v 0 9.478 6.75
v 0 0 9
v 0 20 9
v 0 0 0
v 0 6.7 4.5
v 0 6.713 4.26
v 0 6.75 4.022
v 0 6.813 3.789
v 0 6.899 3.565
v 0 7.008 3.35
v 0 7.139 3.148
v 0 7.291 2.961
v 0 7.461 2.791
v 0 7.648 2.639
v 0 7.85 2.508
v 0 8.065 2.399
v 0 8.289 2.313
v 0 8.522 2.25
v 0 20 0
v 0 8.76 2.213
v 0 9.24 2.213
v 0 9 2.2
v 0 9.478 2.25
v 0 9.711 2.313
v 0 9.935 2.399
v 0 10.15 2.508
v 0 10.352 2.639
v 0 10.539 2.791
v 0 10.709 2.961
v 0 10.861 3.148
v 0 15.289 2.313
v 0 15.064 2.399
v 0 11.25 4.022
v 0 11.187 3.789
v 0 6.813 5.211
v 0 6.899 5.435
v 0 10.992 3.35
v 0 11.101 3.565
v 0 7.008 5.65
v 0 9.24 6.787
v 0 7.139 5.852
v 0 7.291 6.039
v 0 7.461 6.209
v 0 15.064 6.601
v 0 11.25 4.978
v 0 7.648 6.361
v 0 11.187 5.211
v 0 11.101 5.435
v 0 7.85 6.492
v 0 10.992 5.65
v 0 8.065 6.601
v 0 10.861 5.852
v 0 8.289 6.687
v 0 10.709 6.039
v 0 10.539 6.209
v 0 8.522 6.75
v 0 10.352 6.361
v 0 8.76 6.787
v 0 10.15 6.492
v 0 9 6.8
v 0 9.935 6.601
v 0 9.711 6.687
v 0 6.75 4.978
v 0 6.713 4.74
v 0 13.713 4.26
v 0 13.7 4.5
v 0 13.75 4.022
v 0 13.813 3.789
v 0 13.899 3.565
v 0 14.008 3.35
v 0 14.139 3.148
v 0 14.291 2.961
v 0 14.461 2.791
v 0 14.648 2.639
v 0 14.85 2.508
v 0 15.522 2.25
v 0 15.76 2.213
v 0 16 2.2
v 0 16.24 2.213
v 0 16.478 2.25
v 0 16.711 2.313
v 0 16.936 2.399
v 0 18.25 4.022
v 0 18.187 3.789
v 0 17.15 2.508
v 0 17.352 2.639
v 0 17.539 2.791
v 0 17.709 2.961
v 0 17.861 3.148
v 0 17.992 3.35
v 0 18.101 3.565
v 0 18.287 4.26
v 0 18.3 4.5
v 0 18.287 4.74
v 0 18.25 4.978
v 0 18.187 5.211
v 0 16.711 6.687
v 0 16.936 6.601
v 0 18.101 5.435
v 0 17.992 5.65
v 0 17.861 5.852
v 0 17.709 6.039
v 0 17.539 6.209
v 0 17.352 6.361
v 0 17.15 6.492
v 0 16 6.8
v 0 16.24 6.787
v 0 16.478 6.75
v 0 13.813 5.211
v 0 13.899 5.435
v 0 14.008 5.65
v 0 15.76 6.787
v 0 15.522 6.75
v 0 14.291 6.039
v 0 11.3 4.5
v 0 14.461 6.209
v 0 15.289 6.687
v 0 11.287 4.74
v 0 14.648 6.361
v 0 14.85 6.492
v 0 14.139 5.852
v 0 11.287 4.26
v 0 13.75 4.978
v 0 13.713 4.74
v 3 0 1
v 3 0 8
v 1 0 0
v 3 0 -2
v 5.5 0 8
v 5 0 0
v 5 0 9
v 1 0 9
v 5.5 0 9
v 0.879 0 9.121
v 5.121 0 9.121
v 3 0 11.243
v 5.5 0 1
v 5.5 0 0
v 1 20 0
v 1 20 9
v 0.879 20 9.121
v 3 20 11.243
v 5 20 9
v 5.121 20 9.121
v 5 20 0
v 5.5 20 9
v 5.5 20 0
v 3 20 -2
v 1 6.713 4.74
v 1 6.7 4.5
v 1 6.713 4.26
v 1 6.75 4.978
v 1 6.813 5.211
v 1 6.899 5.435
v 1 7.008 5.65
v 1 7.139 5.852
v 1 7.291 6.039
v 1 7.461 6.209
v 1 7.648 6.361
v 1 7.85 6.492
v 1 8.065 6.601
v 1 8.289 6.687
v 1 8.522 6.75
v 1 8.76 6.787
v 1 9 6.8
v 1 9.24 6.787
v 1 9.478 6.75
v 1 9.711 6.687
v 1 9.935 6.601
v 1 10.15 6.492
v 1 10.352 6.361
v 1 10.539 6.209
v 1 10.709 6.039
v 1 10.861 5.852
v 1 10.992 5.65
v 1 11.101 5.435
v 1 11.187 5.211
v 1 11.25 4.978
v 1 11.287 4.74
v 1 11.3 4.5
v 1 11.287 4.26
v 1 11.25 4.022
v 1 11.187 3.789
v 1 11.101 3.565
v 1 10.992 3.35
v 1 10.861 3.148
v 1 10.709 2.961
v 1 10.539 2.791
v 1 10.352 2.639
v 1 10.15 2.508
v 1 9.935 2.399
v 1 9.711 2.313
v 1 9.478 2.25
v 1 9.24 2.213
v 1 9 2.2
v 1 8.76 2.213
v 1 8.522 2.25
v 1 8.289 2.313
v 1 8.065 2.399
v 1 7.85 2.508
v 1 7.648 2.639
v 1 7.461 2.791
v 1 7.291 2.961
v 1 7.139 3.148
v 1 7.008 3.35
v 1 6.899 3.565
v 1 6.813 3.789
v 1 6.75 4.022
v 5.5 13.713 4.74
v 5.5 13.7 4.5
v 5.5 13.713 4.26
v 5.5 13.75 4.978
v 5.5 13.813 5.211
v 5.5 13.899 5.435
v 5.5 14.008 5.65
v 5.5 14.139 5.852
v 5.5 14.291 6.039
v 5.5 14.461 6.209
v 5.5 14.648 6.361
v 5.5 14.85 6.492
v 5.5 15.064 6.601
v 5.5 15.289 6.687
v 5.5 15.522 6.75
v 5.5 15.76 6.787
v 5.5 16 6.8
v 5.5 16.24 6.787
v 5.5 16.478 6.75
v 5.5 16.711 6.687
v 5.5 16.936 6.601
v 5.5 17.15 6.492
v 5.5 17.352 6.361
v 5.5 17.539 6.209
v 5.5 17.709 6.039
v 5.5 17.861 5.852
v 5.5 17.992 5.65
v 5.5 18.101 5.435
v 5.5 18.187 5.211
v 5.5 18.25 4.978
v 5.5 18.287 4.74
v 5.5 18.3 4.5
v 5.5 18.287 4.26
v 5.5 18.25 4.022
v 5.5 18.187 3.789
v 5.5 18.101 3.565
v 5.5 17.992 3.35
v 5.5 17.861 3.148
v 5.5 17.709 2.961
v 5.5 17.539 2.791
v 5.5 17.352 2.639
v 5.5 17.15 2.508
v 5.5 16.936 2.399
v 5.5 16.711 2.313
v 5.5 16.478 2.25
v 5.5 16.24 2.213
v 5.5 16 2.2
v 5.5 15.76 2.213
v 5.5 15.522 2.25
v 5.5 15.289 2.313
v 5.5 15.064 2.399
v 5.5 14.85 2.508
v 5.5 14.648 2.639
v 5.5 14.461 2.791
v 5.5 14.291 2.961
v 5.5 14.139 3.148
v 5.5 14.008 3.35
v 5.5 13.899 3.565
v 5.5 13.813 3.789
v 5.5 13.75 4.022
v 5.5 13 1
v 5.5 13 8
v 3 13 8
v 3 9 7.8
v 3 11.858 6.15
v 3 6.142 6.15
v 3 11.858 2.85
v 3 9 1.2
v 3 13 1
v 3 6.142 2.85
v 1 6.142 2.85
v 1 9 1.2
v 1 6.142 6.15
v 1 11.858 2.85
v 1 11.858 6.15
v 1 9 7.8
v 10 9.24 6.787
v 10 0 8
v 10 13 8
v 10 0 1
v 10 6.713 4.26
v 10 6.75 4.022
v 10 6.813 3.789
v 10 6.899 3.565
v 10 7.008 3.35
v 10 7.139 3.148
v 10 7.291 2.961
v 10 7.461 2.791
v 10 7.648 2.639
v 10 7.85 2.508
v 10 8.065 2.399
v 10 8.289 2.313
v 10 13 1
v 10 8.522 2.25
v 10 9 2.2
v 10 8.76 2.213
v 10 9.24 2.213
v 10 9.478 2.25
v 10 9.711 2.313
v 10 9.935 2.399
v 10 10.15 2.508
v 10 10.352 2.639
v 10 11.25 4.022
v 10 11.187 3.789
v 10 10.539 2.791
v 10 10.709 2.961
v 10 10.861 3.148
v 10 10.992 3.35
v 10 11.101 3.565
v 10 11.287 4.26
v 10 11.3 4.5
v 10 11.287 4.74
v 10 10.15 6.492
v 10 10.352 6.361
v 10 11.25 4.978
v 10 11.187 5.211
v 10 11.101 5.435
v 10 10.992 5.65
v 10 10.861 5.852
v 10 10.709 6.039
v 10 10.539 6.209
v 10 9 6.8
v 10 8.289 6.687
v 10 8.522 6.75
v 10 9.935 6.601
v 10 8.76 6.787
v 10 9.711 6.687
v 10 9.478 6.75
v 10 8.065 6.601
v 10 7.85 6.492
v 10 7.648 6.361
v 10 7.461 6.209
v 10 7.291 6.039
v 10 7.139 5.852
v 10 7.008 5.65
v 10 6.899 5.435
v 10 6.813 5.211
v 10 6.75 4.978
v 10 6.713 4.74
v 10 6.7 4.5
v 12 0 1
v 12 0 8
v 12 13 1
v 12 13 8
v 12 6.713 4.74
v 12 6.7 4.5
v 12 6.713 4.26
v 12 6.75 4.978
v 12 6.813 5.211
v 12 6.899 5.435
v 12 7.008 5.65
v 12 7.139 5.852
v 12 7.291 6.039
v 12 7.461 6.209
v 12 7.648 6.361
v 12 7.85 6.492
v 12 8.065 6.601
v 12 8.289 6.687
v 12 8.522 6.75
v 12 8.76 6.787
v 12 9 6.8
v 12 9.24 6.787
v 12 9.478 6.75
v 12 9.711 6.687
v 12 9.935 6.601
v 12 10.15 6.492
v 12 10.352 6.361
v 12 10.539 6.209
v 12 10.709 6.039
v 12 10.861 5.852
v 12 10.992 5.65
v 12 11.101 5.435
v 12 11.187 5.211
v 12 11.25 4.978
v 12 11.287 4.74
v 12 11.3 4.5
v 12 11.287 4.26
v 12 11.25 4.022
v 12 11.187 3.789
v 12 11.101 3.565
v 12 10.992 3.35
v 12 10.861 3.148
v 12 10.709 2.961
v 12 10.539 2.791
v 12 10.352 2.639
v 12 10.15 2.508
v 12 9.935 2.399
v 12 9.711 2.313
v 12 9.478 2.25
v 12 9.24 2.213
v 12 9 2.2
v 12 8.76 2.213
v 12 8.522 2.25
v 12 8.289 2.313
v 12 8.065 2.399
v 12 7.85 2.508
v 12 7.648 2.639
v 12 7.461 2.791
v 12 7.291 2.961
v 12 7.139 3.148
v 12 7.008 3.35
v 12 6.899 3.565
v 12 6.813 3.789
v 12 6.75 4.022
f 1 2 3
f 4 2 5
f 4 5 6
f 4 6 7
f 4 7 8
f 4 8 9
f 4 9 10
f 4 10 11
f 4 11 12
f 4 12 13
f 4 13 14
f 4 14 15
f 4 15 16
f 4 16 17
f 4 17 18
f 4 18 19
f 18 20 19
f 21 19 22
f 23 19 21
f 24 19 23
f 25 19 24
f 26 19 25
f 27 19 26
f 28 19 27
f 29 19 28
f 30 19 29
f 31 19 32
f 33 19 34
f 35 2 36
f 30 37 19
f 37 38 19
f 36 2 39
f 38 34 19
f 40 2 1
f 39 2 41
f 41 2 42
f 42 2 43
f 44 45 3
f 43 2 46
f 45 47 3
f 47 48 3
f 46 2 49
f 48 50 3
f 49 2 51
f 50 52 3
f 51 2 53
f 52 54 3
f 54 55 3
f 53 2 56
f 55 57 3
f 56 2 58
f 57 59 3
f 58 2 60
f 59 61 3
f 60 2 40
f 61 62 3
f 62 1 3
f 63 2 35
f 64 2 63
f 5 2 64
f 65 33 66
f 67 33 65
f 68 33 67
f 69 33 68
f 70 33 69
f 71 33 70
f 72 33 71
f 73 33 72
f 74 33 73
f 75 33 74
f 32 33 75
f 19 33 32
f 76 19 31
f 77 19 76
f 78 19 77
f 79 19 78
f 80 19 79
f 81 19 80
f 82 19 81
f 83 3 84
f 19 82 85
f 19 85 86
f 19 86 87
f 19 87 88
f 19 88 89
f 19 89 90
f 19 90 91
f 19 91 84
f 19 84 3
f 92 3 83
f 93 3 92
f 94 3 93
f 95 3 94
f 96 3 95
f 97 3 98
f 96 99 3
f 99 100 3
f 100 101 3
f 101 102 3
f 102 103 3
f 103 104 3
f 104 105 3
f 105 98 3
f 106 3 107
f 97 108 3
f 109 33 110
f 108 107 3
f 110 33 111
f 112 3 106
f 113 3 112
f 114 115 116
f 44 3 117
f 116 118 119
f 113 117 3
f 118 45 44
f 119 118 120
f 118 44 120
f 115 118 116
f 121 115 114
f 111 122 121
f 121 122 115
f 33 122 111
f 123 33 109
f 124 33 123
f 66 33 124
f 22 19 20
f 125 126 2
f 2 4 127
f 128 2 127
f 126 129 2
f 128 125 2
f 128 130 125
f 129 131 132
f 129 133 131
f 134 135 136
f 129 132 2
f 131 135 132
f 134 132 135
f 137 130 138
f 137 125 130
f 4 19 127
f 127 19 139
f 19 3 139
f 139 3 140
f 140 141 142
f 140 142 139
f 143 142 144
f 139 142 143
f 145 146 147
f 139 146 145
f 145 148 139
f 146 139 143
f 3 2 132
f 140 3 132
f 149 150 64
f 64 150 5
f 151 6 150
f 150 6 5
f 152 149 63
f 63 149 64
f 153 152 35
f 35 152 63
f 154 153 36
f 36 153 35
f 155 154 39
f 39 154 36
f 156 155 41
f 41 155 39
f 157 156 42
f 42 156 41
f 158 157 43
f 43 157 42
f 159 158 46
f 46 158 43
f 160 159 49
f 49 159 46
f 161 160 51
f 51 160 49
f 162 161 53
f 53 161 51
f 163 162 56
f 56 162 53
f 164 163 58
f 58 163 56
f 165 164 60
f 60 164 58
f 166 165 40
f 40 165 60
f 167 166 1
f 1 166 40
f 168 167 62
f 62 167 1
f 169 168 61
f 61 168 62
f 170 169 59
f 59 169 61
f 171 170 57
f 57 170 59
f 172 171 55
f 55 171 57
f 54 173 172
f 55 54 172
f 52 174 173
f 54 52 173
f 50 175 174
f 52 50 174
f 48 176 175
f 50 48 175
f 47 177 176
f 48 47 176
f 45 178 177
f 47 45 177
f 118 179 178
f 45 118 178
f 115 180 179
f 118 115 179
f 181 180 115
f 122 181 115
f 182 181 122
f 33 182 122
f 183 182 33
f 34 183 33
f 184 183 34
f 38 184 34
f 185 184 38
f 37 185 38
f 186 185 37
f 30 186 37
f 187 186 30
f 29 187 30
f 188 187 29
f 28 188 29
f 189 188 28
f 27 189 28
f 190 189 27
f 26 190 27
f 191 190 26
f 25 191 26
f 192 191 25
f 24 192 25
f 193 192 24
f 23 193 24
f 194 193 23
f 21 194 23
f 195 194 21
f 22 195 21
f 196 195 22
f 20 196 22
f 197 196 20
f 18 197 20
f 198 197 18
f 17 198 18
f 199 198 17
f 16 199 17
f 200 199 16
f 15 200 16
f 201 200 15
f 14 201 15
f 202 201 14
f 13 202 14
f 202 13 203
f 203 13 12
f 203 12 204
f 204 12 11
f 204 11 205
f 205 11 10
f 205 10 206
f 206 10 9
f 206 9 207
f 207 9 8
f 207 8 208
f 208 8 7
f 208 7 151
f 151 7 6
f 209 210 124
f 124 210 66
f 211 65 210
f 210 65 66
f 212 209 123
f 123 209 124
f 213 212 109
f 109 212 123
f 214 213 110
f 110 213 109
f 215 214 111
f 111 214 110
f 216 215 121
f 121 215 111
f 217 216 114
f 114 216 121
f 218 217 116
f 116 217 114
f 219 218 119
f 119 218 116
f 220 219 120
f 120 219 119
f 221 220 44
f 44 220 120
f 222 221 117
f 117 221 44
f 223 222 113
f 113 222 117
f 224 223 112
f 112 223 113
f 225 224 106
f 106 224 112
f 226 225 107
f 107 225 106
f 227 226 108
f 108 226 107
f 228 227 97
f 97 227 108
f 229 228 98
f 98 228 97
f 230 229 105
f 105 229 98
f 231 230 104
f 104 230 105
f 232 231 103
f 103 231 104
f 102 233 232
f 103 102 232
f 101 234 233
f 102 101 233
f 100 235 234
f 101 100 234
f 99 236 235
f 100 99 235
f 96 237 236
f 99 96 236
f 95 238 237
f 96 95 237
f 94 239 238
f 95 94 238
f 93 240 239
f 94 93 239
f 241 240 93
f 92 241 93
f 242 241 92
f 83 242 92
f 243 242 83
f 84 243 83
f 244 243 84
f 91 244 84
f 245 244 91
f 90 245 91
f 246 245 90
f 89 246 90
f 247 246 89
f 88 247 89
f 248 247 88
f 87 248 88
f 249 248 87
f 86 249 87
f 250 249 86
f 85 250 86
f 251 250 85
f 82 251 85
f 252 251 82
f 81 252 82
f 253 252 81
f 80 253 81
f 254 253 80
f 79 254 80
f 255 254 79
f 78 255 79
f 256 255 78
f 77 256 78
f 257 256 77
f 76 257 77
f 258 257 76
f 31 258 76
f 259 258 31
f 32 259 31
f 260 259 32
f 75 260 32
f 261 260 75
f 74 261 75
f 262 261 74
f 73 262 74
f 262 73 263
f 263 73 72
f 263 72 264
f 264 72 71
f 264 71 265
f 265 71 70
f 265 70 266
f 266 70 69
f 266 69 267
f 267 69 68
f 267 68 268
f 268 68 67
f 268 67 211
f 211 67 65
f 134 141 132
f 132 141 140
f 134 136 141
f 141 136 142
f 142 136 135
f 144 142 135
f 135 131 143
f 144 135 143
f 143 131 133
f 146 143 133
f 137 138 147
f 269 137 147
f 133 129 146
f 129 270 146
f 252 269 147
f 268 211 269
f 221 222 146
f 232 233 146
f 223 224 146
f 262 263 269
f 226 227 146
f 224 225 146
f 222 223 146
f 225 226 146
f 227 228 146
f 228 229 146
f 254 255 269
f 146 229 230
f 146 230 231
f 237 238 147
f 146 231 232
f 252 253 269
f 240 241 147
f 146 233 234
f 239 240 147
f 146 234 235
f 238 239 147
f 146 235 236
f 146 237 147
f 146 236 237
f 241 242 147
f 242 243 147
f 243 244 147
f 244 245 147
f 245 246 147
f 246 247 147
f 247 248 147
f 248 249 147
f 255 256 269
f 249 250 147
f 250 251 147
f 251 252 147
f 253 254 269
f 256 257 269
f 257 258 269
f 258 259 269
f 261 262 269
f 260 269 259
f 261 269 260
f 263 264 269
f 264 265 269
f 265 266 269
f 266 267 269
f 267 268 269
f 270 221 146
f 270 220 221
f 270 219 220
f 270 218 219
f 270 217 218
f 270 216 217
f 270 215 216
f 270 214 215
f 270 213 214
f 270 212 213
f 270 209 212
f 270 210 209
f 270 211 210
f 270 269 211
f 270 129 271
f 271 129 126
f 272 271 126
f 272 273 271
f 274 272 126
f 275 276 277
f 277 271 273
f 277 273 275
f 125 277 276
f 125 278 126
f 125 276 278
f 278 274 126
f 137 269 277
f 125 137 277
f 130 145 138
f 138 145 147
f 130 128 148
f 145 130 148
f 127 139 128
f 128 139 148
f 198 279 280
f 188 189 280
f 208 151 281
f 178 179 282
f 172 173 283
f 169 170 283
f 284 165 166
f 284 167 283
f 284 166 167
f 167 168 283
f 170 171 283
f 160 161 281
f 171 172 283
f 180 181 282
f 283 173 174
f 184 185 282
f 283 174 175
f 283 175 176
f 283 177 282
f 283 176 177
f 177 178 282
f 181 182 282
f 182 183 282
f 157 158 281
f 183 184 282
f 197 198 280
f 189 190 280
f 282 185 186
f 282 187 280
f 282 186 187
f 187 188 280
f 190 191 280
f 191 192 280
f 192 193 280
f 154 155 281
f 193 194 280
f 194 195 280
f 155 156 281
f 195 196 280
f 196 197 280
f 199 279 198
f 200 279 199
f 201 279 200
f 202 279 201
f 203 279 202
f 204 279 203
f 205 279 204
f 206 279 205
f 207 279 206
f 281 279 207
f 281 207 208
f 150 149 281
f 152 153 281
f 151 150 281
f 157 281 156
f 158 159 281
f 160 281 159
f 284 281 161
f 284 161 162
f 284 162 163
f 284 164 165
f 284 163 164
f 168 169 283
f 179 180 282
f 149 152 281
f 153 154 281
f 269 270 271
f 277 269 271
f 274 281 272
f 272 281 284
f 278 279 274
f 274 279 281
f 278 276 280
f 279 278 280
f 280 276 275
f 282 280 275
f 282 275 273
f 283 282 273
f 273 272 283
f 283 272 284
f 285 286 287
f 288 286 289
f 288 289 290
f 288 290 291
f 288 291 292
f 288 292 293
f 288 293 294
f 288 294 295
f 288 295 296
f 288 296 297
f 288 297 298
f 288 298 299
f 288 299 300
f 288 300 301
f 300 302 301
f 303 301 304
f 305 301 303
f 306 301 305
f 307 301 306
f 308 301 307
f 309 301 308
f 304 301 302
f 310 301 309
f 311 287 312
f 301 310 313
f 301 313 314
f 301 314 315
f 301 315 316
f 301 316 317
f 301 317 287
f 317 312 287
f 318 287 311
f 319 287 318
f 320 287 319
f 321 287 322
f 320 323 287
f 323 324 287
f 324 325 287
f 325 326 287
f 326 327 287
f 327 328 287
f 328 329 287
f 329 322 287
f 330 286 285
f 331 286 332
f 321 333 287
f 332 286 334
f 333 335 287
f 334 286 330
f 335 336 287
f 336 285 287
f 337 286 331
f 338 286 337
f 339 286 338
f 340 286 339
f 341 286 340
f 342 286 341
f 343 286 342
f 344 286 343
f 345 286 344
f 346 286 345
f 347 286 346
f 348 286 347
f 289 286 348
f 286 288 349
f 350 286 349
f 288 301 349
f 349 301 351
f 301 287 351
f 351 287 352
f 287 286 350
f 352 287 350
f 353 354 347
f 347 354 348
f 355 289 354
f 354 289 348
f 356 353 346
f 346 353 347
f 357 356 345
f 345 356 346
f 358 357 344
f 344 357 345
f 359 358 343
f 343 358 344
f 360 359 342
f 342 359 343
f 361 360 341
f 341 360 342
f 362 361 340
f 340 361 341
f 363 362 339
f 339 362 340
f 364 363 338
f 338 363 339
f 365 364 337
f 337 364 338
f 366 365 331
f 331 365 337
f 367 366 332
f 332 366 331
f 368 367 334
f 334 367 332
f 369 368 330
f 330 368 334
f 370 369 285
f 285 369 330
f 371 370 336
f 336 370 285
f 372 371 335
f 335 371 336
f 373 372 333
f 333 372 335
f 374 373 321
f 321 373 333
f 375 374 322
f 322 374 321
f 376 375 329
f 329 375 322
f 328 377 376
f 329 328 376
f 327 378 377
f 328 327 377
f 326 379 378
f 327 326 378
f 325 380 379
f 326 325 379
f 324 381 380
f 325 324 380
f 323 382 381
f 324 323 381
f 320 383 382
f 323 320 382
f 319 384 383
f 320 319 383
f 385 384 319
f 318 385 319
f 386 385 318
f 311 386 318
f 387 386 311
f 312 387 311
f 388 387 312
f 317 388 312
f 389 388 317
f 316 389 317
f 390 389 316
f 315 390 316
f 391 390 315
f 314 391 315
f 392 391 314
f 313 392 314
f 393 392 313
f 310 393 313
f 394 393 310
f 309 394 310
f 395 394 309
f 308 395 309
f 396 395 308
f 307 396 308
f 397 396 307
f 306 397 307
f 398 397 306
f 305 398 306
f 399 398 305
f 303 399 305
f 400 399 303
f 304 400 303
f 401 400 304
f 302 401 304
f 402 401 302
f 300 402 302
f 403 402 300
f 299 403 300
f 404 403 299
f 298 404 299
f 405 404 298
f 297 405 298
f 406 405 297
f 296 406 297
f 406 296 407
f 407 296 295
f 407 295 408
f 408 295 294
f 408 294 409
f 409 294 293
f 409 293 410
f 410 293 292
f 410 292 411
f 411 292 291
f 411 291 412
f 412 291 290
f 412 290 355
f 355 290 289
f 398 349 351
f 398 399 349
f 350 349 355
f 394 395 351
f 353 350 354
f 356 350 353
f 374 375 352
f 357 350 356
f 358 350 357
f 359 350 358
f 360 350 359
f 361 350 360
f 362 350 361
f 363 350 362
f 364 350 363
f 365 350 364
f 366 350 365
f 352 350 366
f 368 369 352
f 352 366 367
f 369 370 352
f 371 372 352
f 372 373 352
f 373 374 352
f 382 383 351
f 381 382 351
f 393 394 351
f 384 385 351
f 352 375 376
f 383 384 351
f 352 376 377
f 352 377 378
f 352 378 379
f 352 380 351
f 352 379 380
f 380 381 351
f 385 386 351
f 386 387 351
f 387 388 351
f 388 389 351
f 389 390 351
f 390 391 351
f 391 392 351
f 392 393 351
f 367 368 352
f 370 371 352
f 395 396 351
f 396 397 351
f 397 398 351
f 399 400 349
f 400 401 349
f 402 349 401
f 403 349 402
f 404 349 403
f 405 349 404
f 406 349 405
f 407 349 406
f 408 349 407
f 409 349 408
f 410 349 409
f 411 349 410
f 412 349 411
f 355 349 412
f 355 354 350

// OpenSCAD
x = 24;		// Height body
y = 20;		// Height body
z = 48;		// Height body
s1x = 5;	// Height body
s1z = 9;	// Height body

r1 = 4.2;	// Radio varilla lisa
r2 = 2.3;	// Radio tornillo M3
r3 = 11.2;	// Radio centro motor
r4 = 3;		// Radio tornillo M5
r5 = 7.6;	// Radio rodamiento lineal
r6 = 4.62;	// Radio tuerca M5
h6 = 4;		// Altura tuerca M5
r7 = 2.3;	// Radio poleas
r8 = 3.7;	// Radio cabeza tornillo M3
r9 = 6.1;	// Radio casquillo bronze
rM4 = 2.7;	// Radio tornillo M4
rTM5 = 4.62;	// Radio tuerca M5
hTM5 = 4;		// Altura tuerca M5
rTM4 = 4;	// Radio tuerca M4
hTM4 = 3.3;		// Altura tuerca M4
rTM3 = 3.3;	// Radio tuerca M3
hTM3 = 2.3;		// Altura tuerca M3

L1 = 3;		// Tamaño guia fijacion bloques hotend

module fija_correa_block_corexy()
{
	union() {
		fijacion1();
		translate([10, 0, 1]) fijacion2();
	}
}

module fijacion1()
{
		difference() {
			union() {
				//Hueco piezas sujecion correa
				cube([5.5, y, s1z]);

				// Guias fijacion correa
				translate([3, 0, (s1z-2)]) rotate([0, -45, 0]) cube([L1, y, L1]);
				translate([3, 0, -2]) rotate([0, -45, 0]) cube([L1, y, L1]);
			}			
			translate([3, 0, 1]) cube([5, ((y/2) + 3), (s1z - 2)]);
			translate([-1, ((y/2)-1), (s1z/2)]) rotate([0, 90, 0]) cylinder(h = 7, r = r2, $fn=60);
			translate([1, ((y/2)-1), (s1z/2)]) rotate([0, 90, 0]) cylinder(h = hTM3, r = rTM3, $fn=6);

			translate([-1, ((y/2)+6), (s1z/2)]) rotate([0, 90, 0]) cylinder(h = 7, r = r2, $fn=60);	
				
		}
}

module fijacion2()
{
	difference() {
		cube([2, ((y/2) + 3), (s1z - 2)]);
		translate([-1, ((y/2)-1), ((s1z - 2)/2)]) rotate([0, 90, 0]) cylinder(h = 4, r = r2, $fn=60);
	}
}

fija_correa_block_corexy();
